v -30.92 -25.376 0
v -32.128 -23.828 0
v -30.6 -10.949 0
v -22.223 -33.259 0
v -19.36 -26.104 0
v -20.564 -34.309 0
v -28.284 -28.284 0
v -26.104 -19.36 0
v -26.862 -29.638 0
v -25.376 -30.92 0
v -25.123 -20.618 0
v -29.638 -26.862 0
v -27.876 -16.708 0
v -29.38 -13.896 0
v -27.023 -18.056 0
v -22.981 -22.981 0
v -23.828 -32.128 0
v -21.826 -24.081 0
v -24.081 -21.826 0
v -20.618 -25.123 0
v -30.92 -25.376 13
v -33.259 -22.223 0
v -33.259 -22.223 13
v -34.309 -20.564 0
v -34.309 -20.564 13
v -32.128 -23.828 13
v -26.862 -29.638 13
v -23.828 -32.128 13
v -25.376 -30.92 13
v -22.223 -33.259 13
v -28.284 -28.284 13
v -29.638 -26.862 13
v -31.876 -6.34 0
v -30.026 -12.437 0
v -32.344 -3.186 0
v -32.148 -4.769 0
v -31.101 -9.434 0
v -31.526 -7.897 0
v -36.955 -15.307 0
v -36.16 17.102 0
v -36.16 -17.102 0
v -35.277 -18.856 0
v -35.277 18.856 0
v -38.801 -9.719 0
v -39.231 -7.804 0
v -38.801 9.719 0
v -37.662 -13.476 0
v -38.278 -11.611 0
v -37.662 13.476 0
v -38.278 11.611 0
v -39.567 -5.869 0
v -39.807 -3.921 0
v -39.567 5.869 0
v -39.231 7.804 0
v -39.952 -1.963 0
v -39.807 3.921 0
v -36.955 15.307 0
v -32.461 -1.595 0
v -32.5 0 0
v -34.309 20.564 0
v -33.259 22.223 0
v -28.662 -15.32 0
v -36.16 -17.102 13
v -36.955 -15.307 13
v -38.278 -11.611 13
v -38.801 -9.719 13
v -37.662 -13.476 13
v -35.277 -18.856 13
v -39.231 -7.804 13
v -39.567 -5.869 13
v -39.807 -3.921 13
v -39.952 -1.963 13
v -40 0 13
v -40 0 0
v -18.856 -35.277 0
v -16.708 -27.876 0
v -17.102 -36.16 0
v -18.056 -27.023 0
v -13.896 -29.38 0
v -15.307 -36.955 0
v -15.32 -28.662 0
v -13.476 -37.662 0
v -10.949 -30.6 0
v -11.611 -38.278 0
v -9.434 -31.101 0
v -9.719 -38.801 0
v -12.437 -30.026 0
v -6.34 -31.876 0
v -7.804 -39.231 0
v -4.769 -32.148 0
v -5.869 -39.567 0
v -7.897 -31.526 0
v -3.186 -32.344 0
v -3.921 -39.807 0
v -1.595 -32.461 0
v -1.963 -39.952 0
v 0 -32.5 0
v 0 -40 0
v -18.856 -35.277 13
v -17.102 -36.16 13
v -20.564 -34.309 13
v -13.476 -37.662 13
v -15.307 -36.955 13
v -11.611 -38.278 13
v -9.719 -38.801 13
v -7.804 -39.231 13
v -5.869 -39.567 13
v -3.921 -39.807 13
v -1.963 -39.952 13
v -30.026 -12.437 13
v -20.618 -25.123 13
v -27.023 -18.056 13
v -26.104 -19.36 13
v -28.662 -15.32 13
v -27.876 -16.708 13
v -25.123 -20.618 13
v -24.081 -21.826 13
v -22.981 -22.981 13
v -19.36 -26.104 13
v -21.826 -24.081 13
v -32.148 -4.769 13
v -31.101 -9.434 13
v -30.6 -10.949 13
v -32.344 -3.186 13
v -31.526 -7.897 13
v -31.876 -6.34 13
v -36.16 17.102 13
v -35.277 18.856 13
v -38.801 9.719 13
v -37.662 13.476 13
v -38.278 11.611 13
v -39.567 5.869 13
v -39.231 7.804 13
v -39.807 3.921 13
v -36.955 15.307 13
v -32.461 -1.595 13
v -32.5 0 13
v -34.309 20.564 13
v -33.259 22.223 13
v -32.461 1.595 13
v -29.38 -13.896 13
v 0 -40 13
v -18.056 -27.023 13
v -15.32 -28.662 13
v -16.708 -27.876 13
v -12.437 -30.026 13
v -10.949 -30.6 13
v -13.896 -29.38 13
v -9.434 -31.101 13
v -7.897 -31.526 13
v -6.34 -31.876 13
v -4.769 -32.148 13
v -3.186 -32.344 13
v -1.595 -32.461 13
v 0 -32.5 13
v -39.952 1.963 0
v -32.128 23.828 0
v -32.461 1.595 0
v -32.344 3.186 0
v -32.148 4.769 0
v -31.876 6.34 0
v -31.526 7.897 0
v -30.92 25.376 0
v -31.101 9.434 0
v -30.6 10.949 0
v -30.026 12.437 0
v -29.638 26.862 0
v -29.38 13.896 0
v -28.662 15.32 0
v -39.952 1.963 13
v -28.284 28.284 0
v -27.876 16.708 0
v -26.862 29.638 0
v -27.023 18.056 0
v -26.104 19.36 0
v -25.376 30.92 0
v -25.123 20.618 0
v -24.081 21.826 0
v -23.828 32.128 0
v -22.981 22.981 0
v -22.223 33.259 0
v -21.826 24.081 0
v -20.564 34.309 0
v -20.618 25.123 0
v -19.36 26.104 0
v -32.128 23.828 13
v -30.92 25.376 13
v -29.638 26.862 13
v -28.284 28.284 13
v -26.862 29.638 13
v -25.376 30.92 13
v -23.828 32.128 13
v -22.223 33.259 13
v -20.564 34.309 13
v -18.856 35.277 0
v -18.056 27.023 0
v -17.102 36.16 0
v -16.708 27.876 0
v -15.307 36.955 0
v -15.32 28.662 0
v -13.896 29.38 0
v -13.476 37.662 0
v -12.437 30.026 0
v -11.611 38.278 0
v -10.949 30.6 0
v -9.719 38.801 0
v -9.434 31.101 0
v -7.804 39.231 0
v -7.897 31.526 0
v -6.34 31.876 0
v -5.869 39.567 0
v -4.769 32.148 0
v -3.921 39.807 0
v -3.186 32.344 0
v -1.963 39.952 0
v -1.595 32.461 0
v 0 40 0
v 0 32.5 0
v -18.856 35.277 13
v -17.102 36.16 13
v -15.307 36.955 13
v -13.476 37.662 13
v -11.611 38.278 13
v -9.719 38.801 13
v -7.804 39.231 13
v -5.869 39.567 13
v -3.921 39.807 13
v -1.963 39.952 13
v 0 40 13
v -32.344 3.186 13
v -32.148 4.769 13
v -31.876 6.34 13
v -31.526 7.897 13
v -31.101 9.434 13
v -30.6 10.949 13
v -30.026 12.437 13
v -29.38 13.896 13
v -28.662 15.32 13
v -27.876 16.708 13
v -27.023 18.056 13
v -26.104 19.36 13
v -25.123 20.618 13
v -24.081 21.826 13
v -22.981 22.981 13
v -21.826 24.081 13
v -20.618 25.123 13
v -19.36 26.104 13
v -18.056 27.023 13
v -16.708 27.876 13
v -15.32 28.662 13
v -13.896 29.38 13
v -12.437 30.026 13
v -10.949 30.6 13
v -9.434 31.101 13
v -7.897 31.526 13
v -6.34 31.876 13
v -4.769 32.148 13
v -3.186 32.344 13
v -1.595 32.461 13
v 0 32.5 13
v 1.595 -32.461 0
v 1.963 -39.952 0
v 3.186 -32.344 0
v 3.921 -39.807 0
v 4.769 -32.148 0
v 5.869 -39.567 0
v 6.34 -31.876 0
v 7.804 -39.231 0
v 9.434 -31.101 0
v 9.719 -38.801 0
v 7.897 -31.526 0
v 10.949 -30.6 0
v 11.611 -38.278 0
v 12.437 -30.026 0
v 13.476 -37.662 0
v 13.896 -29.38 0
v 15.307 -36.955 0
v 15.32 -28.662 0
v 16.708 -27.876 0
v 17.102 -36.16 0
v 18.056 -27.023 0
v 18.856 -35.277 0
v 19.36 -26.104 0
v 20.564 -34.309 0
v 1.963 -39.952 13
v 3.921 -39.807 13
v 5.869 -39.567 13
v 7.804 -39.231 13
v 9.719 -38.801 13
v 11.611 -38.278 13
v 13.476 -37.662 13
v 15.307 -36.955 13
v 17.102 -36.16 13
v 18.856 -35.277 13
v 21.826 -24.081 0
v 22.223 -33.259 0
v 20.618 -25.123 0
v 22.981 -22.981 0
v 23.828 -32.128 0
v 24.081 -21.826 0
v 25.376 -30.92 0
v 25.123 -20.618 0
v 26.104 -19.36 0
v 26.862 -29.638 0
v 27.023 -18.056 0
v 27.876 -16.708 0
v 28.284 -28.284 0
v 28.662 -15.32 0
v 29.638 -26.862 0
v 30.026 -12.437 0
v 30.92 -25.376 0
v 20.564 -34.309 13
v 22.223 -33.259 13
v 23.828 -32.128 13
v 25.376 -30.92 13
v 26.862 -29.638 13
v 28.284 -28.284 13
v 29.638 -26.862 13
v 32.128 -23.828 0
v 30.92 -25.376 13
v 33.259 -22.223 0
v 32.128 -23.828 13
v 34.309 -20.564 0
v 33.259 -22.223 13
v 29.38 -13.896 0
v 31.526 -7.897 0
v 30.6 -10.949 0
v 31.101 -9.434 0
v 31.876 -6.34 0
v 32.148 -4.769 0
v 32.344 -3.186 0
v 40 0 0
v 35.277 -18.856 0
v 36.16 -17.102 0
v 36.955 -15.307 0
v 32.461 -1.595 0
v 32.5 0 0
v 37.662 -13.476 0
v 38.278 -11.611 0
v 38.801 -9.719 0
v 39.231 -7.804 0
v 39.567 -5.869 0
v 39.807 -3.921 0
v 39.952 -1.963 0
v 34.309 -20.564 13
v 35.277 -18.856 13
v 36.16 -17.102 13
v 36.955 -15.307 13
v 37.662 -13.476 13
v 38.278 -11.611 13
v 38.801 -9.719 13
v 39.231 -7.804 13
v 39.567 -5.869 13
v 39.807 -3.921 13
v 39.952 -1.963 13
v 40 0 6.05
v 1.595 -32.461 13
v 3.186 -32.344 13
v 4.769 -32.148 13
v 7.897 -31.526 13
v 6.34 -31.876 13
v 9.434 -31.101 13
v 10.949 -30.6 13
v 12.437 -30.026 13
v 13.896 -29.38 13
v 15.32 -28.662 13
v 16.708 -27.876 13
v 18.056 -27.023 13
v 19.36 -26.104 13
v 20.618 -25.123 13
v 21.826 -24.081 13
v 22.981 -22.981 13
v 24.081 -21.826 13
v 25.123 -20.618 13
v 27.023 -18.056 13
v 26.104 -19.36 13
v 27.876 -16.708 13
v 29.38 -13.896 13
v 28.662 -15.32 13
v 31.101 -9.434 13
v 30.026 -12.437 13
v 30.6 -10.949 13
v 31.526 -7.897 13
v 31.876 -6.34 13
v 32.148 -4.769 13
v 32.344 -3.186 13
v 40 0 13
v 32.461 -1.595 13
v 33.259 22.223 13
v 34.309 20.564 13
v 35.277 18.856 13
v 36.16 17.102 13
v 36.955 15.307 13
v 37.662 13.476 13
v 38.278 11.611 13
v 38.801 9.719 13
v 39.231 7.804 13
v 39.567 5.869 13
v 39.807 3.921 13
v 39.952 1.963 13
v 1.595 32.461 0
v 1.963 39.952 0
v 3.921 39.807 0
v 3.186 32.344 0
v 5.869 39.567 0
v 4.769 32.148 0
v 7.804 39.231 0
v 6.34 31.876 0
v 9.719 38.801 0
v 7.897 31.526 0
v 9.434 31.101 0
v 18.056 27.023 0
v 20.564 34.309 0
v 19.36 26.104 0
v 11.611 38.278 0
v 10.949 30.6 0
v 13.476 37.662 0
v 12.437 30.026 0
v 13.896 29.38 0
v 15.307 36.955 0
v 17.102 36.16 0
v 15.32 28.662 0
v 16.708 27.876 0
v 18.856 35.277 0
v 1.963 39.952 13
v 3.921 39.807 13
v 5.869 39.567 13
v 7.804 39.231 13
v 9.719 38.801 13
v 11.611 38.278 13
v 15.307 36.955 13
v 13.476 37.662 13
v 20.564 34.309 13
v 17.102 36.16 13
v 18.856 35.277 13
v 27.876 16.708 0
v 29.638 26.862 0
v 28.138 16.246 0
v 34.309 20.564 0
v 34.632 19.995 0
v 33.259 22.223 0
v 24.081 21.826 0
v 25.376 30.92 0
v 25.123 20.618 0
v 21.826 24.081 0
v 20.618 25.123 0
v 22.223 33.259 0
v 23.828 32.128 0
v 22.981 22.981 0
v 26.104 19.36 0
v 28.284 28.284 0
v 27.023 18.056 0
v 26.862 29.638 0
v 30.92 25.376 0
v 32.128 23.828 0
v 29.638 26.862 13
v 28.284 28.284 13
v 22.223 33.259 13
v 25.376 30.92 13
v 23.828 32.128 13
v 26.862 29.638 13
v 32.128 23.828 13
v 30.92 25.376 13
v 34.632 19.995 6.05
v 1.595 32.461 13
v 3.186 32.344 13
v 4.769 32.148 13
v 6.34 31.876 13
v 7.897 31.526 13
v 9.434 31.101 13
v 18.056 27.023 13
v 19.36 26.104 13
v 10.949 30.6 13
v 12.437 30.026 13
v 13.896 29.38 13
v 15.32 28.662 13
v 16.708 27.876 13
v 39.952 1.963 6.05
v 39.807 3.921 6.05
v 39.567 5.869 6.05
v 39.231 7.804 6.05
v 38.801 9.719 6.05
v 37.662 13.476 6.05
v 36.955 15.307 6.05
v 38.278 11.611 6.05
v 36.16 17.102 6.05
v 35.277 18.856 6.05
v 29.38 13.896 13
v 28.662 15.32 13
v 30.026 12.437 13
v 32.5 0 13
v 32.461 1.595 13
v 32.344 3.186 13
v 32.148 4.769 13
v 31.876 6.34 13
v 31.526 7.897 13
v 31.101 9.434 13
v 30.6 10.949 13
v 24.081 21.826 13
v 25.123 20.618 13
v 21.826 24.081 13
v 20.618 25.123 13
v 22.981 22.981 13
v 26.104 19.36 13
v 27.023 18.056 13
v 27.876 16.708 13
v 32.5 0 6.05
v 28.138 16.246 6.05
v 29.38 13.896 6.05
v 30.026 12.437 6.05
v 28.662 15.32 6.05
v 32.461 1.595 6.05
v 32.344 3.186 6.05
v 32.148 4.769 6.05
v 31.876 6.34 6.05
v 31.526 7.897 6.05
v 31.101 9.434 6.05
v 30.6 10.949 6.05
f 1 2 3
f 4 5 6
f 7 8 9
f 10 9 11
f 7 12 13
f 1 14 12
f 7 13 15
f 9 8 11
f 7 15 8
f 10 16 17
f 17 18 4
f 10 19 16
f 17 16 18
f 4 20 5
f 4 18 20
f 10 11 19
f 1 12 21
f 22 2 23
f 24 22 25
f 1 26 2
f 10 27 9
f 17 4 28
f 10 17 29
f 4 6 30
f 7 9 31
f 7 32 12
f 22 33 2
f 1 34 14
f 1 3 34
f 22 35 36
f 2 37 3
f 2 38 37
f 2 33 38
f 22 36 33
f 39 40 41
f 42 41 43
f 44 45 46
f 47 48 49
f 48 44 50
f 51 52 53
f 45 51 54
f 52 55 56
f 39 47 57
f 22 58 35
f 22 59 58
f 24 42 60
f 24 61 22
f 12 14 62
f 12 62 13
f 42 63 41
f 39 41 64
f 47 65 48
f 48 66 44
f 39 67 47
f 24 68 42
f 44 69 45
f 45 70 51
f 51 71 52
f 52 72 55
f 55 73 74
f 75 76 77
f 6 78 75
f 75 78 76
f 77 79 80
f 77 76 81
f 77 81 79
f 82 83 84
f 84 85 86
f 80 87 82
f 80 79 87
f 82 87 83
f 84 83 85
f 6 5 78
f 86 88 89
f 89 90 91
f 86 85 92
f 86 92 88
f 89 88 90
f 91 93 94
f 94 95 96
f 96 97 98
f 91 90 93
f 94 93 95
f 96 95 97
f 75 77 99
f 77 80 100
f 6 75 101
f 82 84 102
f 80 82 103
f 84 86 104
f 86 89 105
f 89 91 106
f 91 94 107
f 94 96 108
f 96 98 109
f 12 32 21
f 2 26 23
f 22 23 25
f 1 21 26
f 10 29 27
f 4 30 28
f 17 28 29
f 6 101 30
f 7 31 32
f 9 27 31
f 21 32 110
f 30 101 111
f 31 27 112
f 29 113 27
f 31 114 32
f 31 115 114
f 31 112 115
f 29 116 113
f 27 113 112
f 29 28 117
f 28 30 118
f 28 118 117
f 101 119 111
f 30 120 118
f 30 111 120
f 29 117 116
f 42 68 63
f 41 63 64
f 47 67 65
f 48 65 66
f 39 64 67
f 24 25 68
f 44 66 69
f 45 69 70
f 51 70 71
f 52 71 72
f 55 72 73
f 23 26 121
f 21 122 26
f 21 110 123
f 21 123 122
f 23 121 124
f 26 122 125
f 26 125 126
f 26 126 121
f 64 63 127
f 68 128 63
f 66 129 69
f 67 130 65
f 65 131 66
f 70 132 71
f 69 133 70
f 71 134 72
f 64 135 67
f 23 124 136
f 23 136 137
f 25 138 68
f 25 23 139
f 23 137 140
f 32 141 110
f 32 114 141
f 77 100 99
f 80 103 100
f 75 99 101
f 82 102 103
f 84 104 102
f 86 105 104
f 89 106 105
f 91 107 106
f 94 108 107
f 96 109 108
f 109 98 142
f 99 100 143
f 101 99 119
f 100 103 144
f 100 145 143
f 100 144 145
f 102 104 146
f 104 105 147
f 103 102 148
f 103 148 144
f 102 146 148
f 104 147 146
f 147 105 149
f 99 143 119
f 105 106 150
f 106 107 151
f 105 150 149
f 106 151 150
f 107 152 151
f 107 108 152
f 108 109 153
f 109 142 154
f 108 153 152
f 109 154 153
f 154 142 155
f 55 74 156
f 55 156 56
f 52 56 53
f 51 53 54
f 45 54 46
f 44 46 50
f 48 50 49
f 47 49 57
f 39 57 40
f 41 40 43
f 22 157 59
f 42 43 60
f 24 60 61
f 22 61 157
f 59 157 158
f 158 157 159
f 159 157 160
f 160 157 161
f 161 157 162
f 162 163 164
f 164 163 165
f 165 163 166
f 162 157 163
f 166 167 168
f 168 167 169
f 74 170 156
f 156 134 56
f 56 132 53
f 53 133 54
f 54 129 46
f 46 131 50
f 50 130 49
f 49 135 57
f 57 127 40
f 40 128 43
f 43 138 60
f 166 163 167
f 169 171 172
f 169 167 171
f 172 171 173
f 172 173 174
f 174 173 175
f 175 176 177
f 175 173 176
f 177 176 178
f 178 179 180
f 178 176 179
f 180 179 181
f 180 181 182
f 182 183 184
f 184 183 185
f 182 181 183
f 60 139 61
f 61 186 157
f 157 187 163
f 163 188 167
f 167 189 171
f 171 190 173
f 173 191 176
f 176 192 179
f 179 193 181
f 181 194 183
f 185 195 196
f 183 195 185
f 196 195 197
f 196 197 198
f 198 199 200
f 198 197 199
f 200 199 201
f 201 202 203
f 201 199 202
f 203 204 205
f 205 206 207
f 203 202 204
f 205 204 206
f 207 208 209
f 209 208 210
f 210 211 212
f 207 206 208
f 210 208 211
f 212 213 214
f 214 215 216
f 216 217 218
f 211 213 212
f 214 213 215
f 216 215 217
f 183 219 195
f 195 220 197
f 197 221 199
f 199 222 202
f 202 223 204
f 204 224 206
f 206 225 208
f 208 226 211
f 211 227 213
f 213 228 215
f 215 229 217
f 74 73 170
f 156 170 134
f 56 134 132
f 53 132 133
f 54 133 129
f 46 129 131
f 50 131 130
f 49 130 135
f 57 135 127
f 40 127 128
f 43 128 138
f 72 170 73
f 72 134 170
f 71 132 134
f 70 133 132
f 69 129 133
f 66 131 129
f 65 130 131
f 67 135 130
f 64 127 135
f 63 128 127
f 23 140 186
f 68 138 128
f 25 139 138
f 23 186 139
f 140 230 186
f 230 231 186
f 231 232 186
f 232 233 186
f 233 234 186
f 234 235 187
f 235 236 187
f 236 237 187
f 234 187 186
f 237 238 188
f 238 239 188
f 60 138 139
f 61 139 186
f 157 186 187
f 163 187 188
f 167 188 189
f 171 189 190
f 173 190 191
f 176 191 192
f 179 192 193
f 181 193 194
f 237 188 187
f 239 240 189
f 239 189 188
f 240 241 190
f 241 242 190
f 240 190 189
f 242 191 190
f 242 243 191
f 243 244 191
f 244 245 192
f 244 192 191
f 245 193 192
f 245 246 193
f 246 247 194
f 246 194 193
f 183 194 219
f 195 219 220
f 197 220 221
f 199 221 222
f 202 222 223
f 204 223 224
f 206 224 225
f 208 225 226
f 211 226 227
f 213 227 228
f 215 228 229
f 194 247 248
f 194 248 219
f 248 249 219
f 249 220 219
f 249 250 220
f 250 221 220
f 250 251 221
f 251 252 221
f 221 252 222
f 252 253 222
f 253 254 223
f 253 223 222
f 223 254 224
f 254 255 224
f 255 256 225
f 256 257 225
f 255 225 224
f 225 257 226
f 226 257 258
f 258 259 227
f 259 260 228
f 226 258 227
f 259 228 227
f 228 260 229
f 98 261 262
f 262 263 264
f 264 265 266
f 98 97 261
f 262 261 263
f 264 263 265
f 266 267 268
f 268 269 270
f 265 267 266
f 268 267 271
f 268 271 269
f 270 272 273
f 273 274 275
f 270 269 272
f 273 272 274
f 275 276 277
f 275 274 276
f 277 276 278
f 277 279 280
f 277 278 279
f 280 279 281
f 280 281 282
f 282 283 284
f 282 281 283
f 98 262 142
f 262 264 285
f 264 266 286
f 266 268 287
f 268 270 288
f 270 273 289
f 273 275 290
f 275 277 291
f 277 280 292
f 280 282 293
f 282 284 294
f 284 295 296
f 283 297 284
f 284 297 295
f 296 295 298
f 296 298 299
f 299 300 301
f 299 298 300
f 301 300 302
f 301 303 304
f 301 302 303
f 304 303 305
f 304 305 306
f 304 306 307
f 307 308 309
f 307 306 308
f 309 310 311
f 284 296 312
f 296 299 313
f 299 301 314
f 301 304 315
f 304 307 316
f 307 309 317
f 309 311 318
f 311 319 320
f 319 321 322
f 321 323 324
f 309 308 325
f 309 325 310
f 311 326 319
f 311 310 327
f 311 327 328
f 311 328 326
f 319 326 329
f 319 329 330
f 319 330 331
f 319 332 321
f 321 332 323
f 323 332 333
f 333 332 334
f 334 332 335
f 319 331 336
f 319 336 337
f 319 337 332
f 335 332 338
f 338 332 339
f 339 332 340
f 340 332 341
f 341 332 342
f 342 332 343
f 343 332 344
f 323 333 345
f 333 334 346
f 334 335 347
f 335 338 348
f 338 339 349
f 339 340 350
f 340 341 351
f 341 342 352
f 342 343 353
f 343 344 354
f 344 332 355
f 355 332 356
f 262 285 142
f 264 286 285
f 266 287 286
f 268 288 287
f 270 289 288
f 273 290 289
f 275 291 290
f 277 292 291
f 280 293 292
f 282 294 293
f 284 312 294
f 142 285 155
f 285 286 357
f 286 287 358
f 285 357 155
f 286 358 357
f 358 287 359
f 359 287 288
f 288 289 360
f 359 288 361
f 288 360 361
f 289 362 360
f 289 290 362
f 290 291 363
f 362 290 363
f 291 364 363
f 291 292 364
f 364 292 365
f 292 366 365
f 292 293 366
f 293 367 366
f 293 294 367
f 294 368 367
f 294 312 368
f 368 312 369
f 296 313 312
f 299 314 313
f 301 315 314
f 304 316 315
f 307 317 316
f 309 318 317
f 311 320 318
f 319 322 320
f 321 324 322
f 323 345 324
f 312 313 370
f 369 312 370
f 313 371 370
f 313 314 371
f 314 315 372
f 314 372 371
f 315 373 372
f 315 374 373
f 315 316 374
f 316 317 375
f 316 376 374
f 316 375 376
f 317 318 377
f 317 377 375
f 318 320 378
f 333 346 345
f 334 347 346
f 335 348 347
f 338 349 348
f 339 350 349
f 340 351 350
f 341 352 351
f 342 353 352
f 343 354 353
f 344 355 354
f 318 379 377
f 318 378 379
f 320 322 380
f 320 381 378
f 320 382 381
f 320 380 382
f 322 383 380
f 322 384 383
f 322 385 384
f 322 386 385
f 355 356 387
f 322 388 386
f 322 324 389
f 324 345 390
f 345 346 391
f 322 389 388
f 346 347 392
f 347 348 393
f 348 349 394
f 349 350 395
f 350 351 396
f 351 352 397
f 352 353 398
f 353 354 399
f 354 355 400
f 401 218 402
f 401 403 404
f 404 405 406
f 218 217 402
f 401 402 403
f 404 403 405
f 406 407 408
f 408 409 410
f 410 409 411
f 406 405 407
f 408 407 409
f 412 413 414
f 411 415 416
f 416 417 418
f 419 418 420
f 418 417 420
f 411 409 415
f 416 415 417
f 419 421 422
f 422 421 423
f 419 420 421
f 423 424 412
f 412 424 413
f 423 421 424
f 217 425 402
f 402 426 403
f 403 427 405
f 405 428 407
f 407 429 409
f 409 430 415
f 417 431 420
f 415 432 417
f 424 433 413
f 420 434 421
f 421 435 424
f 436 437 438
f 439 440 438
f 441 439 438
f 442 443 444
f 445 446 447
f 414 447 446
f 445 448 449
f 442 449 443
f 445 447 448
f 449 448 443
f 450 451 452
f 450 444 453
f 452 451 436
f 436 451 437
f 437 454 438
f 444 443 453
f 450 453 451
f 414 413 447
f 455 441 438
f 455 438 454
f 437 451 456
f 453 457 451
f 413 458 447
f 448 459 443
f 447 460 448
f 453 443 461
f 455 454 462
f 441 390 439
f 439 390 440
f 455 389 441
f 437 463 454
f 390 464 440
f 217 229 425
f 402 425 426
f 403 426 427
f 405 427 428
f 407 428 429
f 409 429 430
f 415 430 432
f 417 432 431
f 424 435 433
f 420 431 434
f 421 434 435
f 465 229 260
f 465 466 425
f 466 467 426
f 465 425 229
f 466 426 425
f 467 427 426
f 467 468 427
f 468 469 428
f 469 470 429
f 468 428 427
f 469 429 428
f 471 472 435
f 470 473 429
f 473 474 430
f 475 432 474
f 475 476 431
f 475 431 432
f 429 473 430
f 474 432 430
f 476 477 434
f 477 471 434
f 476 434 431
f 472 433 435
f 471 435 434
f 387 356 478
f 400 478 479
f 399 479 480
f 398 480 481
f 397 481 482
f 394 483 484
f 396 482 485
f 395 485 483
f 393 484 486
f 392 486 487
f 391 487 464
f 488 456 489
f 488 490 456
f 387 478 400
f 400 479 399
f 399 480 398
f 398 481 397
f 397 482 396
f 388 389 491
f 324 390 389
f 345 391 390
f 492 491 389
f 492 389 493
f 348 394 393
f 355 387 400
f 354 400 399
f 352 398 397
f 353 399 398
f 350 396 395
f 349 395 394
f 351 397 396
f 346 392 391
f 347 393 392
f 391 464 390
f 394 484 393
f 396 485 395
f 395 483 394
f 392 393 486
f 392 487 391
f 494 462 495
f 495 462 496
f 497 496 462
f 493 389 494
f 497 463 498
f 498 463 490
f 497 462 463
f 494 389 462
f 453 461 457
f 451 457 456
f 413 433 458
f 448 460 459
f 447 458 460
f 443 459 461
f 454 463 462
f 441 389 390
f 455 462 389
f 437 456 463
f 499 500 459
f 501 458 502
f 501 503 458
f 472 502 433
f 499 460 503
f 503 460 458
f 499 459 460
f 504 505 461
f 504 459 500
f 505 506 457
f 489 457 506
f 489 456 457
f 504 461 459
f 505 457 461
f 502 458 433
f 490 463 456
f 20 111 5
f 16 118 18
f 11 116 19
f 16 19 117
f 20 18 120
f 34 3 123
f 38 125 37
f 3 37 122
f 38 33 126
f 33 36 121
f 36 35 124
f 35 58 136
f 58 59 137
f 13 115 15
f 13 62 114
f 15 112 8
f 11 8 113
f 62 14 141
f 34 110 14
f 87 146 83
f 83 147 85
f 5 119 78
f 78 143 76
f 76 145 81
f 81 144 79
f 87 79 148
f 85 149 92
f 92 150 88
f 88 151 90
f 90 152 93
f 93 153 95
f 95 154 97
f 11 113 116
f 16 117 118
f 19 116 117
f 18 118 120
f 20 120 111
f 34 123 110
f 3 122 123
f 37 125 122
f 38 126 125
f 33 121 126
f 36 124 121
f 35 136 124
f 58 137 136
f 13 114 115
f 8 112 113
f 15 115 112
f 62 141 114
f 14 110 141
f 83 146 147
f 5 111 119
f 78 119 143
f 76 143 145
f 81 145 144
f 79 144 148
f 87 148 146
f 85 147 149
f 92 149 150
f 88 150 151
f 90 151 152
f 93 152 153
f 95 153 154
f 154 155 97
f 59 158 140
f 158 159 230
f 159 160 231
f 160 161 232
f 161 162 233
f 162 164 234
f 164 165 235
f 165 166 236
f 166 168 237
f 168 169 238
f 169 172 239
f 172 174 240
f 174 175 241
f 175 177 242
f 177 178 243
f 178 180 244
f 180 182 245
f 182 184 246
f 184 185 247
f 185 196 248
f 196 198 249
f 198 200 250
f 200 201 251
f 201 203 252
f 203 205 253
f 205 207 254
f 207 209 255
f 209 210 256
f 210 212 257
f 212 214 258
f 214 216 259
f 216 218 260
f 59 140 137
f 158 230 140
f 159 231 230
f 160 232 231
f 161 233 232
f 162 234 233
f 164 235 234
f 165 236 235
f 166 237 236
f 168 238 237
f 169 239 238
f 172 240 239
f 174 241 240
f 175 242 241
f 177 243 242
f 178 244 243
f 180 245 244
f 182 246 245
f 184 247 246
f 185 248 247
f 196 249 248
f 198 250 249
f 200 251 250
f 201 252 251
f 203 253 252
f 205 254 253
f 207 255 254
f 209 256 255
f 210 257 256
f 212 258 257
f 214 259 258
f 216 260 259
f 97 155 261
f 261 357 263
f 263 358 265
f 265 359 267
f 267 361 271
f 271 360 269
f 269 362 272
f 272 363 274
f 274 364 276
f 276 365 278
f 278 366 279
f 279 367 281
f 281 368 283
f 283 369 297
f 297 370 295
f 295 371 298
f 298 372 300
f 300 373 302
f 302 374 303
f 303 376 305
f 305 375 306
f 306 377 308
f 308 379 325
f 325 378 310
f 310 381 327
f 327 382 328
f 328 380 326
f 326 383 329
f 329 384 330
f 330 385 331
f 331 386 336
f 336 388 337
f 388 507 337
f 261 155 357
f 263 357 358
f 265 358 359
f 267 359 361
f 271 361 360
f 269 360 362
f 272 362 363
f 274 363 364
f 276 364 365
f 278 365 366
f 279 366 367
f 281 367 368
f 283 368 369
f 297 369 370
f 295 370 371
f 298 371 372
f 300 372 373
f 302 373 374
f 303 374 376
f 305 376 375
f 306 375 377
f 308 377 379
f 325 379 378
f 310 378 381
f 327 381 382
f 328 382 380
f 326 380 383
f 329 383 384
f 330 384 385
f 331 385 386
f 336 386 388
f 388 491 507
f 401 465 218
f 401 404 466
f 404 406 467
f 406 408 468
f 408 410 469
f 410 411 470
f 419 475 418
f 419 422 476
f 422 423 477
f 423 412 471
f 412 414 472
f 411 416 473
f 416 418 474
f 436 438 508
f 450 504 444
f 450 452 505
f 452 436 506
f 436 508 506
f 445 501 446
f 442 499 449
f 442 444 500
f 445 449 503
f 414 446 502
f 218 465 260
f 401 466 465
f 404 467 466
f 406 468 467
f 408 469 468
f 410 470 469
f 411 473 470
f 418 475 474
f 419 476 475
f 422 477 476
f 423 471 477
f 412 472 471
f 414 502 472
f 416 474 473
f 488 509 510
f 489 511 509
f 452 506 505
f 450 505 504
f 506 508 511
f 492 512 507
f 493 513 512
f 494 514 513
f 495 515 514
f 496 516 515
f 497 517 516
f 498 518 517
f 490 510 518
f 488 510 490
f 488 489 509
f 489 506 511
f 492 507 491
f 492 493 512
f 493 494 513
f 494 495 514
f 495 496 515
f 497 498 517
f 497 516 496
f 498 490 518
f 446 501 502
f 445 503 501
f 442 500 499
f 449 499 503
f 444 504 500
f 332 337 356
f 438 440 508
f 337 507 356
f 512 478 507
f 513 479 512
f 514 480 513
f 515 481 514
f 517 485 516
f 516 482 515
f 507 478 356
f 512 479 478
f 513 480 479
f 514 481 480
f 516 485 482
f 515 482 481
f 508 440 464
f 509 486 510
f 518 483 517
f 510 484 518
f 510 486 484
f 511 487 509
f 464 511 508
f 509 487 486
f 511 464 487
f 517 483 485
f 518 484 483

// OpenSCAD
// POV 3D annular ring collar — parametric

od             = 80;     // 外径 / outer diameter
id             = 65;     // 内径 / inner diameter
height         = 13;     // 总高 / total height

notch_a_start  = 0;      // 槽口起始角 / notch start angle (deg, CCW from +X)
notch_a_end    = 30;     // 槽口结束角 / notch end angle
notch_h        = 6;      // 槽口高度（自底面向上） / notch height from bottom
notch_r        = od / 2 + 2;

module ring_collar() {
    difference() {
        // annular ring
        difference() {
            cylinder(h = height, d = od, $fn = 128);
            translate([0, 0, -1])
                cylinder(h = height + 2, d = id, $fn = 128);
        }
        // notch wedge (subtract from ring only)
        translate([0, 0, -0.05])
            linear_extrude(height = notch_h + 0.1)
                polygon(concat(
                    [[0, 0]],
                    [for (i = [0:28])
                        let (a = notch_a_start + i*(notch_a_end - notch_a_start)/28)
                        [notch_r*cos(a), notch_r*sin(a)]]
                ));
    }
}

ring_collar();
